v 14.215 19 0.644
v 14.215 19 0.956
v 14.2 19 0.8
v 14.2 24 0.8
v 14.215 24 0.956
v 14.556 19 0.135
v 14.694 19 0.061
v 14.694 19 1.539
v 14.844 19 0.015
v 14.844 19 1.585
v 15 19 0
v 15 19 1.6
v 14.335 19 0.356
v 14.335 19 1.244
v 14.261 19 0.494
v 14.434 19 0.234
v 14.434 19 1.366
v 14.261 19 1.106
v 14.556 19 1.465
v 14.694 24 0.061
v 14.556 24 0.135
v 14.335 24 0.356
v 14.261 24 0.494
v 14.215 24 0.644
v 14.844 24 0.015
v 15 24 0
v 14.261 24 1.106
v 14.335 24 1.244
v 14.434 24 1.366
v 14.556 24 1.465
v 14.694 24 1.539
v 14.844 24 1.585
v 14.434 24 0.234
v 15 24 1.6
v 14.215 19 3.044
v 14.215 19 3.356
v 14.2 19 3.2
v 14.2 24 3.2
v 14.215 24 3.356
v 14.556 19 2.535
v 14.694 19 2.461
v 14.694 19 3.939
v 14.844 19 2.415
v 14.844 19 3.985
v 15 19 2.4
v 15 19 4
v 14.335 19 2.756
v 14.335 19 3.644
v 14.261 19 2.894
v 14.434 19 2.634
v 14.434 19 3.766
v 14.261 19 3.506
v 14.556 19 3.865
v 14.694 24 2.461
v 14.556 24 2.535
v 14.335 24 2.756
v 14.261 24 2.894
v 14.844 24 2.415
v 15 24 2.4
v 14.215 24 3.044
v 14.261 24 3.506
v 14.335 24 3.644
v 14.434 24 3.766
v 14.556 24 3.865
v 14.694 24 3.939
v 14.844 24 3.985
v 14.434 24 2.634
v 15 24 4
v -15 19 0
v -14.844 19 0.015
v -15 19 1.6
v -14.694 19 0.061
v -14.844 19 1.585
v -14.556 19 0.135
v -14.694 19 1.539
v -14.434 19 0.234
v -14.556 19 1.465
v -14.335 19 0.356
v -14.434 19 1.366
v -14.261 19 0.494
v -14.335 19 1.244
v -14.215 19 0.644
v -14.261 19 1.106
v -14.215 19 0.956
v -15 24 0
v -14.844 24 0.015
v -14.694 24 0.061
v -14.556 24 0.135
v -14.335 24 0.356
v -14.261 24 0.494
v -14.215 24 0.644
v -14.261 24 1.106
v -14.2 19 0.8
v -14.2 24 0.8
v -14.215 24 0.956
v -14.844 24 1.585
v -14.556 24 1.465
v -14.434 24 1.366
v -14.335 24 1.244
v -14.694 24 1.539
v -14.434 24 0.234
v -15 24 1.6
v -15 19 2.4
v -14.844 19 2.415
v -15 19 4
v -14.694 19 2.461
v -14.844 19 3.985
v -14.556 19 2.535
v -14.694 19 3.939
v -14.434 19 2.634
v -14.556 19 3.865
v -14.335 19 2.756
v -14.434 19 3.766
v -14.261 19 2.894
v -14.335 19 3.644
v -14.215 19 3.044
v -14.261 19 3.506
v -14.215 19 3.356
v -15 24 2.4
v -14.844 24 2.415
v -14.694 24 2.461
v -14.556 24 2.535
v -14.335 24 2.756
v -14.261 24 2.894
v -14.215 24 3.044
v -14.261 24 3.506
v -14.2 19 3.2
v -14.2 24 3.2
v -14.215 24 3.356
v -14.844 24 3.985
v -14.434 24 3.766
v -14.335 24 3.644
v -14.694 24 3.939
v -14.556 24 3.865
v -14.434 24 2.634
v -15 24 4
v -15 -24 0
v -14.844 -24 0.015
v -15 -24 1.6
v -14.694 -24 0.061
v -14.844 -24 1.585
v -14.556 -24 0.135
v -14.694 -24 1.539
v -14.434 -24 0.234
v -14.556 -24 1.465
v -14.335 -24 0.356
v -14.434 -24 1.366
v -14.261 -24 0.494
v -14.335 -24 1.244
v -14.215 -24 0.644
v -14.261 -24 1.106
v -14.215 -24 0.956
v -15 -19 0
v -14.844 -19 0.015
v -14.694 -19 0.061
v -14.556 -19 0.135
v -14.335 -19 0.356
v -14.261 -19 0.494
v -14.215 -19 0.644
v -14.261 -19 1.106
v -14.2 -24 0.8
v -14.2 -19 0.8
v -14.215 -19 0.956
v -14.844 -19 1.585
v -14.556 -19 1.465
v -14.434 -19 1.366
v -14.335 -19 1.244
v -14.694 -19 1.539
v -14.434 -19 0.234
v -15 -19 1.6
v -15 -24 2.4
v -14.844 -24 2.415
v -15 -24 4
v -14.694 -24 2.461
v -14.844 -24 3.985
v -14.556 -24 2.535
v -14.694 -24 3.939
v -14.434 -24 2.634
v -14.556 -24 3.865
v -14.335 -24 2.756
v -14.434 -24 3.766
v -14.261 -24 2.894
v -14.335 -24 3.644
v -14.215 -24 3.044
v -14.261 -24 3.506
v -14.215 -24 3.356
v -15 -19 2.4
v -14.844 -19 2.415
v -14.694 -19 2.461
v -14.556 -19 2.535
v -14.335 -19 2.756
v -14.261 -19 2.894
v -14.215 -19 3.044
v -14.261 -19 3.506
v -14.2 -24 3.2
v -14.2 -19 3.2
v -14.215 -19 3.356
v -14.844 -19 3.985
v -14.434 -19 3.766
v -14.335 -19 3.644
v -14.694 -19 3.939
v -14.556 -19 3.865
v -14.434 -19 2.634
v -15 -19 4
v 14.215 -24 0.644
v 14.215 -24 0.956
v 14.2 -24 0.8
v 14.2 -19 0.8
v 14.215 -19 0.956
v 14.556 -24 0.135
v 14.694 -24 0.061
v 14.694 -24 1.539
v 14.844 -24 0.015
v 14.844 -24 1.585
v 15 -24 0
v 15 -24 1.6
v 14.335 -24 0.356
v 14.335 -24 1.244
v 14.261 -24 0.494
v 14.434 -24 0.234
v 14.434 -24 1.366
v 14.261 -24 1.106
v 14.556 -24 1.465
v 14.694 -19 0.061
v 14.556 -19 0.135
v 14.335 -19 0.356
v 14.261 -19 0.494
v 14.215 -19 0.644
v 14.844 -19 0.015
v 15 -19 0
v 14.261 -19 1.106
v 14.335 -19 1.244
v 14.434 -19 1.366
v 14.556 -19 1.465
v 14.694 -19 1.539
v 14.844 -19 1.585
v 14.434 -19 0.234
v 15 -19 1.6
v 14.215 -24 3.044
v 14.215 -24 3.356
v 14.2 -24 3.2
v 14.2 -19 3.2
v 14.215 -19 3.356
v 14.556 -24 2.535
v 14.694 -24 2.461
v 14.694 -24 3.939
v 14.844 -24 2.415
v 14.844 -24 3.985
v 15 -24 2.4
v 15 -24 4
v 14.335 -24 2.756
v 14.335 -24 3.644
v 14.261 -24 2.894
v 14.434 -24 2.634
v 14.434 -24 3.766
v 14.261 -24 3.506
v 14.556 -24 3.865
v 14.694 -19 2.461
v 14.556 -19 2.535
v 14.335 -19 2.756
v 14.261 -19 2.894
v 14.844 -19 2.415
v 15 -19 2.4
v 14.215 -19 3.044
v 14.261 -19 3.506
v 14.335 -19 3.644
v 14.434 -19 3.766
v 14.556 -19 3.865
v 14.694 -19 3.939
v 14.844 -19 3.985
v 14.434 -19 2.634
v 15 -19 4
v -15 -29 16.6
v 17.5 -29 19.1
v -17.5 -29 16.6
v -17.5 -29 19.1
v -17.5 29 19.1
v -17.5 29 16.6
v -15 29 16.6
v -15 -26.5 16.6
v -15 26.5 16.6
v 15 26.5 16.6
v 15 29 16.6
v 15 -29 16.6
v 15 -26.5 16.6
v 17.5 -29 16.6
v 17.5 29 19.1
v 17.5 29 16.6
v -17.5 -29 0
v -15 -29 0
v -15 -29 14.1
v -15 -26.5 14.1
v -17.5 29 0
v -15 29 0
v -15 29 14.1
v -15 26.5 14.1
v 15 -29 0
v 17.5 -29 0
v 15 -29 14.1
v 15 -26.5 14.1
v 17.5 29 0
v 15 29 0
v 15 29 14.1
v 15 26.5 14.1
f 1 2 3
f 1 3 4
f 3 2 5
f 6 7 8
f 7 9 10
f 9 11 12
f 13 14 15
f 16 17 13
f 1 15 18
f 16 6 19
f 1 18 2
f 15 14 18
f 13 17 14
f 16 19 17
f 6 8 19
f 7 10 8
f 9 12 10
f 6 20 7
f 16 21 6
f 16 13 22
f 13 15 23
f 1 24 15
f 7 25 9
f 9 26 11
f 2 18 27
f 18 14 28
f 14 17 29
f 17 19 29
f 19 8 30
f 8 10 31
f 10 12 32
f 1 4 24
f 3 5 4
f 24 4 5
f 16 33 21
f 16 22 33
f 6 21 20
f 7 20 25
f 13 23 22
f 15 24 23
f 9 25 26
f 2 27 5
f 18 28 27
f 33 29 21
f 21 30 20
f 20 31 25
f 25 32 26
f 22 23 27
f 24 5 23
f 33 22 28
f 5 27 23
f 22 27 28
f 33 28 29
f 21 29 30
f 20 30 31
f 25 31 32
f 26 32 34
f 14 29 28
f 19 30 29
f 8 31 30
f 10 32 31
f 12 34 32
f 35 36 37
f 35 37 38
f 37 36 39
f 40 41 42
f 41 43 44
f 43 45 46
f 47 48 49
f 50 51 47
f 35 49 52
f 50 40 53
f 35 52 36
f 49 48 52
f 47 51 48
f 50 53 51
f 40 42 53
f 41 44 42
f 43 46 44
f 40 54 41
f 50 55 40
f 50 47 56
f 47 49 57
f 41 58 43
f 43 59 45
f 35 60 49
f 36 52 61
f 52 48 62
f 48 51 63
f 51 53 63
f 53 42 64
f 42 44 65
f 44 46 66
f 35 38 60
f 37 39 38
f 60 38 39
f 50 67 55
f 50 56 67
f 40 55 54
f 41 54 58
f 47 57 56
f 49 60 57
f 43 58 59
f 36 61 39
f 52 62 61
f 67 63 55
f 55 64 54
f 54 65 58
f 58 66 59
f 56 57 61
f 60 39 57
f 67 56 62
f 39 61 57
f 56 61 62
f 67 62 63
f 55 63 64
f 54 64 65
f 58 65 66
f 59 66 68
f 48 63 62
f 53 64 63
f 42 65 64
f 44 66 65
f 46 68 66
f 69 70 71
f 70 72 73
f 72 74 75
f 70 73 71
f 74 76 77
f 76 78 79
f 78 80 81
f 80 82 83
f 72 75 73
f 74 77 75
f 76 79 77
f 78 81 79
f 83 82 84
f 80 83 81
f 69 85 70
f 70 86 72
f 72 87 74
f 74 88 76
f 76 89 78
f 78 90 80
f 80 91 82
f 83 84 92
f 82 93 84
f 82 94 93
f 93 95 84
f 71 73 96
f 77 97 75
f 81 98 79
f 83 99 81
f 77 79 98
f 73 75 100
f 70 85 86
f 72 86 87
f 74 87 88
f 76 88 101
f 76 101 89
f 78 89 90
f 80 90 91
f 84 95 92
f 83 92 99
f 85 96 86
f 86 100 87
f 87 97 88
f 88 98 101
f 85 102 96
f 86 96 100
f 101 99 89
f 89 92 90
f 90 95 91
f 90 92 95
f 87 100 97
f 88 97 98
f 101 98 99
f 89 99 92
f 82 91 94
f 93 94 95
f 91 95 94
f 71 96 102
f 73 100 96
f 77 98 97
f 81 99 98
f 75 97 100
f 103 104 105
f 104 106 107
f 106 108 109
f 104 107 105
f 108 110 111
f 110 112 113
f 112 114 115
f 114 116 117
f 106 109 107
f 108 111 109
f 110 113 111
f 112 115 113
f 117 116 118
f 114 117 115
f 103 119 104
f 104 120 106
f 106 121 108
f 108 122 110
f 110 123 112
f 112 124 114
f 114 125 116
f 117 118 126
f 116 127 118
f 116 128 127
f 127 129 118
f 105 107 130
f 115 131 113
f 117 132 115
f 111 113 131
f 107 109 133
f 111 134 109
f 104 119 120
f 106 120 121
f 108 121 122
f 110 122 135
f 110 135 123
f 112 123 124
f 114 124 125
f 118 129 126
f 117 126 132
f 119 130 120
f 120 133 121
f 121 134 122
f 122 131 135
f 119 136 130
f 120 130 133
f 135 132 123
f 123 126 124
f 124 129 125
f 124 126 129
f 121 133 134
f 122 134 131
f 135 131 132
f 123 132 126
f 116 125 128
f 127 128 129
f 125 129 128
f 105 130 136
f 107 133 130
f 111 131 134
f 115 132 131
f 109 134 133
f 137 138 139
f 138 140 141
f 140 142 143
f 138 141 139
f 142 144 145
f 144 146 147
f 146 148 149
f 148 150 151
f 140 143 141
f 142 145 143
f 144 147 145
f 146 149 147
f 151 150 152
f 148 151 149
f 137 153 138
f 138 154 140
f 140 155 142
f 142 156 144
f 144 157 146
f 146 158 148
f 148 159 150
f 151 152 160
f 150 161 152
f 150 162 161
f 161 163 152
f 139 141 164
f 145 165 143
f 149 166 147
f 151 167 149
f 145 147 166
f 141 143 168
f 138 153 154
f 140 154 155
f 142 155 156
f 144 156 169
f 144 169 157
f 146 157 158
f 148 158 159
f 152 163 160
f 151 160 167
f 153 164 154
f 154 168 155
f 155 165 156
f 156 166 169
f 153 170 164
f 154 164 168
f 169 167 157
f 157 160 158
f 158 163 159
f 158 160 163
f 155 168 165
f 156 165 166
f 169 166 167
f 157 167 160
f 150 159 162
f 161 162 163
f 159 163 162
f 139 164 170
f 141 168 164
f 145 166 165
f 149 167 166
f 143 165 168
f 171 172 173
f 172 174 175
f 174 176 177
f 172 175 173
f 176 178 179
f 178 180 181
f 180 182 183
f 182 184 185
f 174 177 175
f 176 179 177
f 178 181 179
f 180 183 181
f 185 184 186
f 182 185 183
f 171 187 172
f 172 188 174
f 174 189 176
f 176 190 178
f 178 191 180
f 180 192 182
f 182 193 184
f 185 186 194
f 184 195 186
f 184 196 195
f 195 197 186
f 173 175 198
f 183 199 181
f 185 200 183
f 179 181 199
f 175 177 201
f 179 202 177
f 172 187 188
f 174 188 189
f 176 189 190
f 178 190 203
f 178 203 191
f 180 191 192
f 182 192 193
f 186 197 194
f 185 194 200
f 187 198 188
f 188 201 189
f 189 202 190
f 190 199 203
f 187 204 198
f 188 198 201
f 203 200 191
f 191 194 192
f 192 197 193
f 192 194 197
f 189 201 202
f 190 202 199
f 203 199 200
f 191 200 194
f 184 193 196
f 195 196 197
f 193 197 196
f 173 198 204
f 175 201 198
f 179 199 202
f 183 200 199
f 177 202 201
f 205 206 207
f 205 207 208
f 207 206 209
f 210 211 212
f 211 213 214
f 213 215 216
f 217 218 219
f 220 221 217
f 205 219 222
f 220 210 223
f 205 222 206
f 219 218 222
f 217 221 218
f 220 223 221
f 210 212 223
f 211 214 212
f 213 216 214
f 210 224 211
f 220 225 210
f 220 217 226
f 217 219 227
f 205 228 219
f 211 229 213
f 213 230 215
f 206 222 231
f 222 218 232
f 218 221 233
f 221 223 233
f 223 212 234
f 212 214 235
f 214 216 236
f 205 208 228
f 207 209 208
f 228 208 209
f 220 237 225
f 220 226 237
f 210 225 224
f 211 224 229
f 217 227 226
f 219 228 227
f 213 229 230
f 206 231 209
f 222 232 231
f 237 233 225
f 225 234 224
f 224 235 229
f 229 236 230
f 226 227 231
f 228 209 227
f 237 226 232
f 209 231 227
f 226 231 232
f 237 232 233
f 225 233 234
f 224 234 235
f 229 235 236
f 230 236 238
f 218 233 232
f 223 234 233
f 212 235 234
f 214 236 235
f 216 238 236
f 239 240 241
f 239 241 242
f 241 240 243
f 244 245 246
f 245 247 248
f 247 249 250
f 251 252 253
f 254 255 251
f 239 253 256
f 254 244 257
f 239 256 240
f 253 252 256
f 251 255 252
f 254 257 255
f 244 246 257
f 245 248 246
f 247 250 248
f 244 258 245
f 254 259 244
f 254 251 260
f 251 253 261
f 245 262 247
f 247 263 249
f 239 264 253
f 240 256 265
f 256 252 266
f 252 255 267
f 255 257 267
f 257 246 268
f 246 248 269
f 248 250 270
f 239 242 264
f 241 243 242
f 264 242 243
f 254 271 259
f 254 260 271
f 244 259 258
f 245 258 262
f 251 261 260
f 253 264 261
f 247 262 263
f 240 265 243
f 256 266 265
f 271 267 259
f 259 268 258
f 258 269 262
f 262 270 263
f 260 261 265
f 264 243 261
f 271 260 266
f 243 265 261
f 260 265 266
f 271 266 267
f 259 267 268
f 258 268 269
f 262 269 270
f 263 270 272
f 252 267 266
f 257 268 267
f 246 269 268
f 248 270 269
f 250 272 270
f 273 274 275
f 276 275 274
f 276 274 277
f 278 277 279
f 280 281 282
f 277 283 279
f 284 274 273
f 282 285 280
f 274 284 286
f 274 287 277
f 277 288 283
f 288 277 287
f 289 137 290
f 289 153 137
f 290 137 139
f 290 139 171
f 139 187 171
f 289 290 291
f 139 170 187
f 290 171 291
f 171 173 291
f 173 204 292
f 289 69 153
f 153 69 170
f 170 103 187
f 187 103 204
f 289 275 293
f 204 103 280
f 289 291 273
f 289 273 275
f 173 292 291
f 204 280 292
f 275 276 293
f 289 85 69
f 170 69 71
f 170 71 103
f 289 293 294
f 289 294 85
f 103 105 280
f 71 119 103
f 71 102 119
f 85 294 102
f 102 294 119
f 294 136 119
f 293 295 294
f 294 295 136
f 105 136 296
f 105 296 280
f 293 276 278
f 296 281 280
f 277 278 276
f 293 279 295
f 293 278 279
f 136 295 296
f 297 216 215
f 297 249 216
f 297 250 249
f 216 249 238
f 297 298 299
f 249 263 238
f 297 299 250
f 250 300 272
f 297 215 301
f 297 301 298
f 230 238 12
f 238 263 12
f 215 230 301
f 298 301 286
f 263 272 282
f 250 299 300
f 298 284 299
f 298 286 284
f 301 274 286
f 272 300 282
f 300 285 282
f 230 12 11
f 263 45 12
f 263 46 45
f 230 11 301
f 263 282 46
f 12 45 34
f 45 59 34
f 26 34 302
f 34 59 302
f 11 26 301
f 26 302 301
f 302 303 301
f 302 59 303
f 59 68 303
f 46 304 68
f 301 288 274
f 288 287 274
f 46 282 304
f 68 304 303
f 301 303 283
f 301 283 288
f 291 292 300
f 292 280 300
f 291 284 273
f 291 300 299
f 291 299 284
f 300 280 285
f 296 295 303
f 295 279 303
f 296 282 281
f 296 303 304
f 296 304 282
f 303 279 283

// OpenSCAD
// PCB Kate / PCB Cover
// Version: 0.10
// Last Modified: 2026-02-16
// Muudatus: Klipi pikkus 5mm, asukoht 5-10mm otstest

/* [Peamised mõõdud] */
pcb_width = 30;         
pcb_length = 58;        
inner_height = 15;      
wall_thickness = 2.5;     
pcb_thickness = 1.6;    

/* [Kinnitusnupud] */
bump_radius = 0.8;      
bump_length = 5;        // Klipi pikkus on nüüd 5mm
clip_offset = 5;        // Kaugus karbi otstest on 5mm

/* [Otsmised tugevdusribid] */
rib_thickness = wall_thickness;    
rib_depth = 2.5;        

$fn = 32;

module pcb_cover_v0_10() {
    total_height = pcb_thickness + inner_height + wall_thickness;

    // Keskmestamine
    translate([-(pcb_width + 2 * wall_thickness)/2, -pcb_length/2, 0]) {
        
        // 1. Pealmine kaas
        translate([0, 0, total_height - wall_thickness])
            cube([pcb_width + 2 * wall_thickness, pcb_length, wall_thickness]);

        // 2. Külgseinad
        cube([wall_thickness, pcb_length, total_height]);
        translate([pcb_width + wall_thickness, 0, 0])
            cube([wall_thickness, pcb_length, total_height]);

        // 3. Otsmised tugevdusribid
        // Esimene ots
        translate([wall_thickness, 0, total_height - wall_thickness - rib_depth])
            cube([pcb_width, rib_thickness, rib_depth]);
            
        // Tagumine ots
        translate([wall_thickness, pcb_length - rib_thickness, total_height - wall_thickness - rib_depth])
            cube([pcb_width, rib_thickness, rib_depth]);

        // 4. Kinnitusmummud (asuvad vahemikus 5-10mm ja pcb_length-10 kuni pcb_length-5)
        for(y_pos = [clip_offset, pcb_length - clip_offset - bump_length]) {
            // Vasak sein
            translate([wall_thickness, y_pos, 0]) 
                flush_bump_pair();
            
            // Parem sein
            translate([pcb_width + wall_thickness, y_pos, 0]) 
                mirror([1, 0, 0]) 
                flush_bump_pair();
        }
    }
}

module flush_bump_pair() {
    // Alumine poolsilinder
    translate([0, 0, bump_radius]) rotate([-90, 0, 0]) half_cylinder();
    
    // Ülemine poolsilinder (pcb_thickness vahega)
    translate([0, 0, bump_radius * 2 + pcb_thickness]) rotate([-90, 0, 0]) half_cylinder();
}

module half_cylinder() {
    difference() {
        cylinder(r = bump_radius, h = bump_length);
        translate([-bump_radius*2, -bump_radius, -0.1])
            cube([bump_radius*2, bump_radius*2, bump_length+0.2]);
    }
}

// Renderdamine
pcb_cover_v0_10();
